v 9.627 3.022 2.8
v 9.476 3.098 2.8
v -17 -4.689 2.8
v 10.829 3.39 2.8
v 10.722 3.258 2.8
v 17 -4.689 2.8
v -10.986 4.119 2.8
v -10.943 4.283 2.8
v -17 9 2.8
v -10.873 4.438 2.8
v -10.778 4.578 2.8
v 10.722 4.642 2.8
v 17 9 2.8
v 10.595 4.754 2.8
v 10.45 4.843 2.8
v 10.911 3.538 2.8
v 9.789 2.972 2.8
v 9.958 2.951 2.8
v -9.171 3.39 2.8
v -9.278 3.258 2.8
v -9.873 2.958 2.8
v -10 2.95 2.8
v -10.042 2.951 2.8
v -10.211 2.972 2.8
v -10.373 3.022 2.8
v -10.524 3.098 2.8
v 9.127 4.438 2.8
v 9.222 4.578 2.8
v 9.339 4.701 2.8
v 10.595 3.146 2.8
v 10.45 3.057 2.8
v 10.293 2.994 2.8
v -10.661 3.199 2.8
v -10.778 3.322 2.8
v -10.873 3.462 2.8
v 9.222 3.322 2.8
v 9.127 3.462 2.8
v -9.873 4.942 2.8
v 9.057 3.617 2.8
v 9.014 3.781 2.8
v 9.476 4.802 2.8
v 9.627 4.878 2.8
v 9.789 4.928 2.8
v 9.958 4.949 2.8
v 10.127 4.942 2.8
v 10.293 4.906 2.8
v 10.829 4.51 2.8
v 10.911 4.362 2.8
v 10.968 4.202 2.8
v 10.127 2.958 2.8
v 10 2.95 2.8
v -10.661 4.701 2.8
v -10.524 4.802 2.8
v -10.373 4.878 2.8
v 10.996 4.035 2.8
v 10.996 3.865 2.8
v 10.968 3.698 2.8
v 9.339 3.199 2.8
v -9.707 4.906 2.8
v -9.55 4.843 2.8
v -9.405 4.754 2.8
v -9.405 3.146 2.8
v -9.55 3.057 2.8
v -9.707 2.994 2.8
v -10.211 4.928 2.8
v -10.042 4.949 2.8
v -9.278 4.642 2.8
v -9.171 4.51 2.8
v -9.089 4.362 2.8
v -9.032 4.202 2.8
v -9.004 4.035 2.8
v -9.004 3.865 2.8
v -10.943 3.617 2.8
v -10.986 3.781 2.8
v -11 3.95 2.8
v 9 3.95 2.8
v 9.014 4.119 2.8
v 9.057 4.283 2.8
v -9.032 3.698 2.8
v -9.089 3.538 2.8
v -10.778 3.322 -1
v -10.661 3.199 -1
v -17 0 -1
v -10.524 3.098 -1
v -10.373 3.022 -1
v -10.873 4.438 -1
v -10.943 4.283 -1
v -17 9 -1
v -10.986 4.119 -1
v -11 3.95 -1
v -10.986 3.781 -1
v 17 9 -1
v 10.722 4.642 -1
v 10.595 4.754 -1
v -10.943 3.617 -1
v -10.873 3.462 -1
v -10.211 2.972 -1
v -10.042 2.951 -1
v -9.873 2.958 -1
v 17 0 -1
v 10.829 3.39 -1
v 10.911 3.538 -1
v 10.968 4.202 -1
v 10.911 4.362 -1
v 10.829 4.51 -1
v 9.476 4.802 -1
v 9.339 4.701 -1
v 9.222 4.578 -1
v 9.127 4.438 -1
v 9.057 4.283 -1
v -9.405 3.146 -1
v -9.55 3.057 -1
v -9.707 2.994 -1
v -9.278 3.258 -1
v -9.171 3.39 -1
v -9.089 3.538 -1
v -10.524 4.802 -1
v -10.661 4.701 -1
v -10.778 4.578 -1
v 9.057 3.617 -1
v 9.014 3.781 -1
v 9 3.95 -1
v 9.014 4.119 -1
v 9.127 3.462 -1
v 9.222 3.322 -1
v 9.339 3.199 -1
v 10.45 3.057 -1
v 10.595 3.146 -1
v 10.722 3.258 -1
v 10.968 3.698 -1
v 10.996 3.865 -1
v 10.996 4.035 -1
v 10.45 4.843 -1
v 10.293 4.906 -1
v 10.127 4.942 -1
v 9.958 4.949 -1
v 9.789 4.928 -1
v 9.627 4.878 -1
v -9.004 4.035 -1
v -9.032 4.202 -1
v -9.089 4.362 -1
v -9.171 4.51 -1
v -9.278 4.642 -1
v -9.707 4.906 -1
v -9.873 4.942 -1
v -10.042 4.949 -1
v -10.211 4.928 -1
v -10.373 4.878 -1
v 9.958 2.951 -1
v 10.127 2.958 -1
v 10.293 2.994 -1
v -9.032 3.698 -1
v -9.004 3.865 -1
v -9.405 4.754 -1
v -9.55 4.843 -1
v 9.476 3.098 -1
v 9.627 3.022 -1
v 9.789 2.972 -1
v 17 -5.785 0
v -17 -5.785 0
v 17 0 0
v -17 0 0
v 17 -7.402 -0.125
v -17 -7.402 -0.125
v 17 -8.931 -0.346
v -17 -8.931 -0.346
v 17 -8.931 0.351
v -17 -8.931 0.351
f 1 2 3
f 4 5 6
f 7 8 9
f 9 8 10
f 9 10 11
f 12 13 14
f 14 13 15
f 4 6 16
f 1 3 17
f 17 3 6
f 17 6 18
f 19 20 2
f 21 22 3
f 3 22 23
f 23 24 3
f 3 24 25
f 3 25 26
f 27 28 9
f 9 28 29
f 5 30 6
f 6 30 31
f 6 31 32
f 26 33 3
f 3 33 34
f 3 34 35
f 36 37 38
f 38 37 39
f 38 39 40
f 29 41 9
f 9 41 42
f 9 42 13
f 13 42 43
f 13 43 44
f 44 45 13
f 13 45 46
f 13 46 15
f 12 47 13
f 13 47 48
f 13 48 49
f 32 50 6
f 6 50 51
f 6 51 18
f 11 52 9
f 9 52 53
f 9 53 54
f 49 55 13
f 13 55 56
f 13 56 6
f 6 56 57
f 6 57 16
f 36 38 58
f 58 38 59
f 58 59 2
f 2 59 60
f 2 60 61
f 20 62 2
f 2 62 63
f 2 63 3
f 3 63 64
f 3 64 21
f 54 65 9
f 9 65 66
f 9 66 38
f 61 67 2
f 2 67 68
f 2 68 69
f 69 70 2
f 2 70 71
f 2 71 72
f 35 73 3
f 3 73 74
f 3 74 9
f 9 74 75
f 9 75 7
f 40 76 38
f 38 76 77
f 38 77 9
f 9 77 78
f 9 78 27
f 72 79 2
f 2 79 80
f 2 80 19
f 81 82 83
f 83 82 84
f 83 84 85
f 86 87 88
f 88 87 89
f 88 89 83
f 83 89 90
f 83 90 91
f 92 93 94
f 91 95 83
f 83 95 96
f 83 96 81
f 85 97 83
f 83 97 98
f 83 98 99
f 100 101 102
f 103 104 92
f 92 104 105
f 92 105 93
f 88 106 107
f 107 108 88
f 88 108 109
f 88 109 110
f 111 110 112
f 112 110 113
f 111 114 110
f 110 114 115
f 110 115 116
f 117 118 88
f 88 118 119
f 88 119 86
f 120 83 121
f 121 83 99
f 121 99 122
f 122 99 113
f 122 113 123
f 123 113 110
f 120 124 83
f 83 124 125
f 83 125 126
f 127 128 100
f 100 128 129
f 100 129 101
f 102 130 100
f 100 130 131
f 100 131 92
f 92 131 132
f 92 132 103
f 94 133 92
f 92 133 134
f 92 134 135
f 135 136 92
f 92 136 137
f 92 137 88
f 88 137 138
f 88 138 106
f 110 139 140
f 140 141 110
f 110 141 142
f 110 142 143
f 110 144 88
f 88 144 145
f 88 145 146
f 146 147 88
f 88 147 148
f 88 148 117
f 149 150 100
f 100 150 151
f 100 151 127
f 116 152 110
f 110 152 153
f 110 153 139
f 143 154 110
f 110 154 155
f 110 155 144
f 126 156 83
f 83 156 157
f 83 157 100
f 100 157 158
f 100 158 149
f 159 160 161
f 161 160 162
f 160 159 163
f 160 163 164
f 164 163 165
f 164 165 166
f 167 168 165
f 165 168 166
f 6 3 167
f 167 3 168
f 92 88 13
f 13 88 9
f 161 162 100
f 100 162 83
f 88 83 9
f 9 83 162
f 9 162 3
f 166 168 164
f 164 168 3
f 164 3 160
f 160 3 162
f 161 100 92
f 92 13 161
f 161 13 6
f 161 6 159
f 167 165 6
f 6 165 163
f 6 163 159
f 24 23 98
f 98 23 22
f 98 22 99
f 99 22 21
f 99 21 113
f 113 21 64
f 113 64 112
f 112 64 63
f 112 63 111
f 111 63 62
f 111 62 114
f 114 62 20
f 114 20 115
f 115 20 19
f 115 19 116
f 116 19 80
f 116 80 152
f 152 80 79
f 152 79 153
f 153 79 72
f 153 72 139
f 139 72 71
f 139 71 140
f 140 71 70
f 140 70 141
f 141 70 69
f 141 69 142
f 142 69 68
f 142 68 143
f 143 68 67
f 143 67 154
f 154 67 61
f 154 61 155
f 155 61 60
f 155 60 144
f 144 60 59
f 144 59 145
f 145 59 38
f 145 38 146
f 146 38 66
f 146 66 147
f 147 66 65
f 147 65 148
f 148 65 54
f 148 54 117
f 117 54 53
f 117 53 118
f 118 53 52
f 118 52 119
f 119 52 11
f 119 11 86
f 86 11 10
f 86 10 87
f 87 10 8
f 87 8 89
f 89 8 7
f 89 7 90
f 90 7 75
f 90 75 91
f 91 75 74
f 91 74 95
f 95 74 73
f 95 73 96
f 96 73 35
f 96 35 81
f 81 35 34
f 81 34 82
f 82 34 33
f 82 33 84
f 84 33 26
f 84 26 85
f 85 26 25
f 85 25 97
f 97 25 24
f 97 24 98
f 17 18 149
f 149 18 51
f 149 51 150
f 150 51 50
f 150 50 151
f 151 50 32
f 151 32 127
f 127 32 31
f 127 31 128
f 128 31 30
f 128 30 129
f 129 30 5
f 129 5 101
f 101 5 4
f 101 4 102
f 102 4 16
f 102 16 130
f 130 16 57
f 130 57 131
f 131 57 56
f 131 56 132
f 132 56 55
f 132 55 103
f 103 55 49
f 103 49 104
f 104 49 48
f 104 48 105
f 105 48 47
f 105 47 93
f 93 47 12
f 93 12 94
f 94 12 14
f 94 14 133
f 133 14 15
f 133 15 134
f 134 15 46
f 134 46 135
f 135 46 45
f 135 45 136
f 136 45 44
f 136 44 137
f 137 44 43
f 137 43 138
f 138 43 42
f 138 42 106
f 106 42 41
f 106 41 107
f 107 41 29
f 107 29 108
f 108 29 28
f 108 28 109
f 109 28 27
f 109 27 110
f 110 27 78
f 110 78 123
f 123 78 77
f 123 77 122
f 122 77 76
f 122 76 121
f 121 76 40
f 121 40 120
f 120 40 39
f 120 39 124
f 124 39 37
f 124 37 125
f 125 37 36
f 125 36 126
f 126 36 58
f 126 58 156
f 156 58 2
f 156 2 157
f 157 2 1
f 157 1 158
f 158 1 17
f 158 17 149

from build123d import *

# Parameters (mm, degrees)
BOSS_EXTRUDE1_DEPTH      = 17
BOSS_EXTRUDE1_DEPTH_BACK = 17
SKETCH4_R                = 1
CUT_EXTRUDE1_DEPTH       = 17


with BuildPart() as part:
    # Sketch1 → Boss-Extrude1 (new, two sides: drawn at the far end of the back side and taken through both)
    with BuildSketch(Plane(origin=(0, 0, 0), x_dir=(0, 0, -1), z_dir=(1, 0, 0)).offset(-BOSS_EXTRUDE1_DEPTH_BACK)):
        with BuildLine():
            Line((0, 0), (1, 0))
            Line((1, 0), (1, 9))
            Line((1, 9), (-2.8, 9))
            Line((-2.8, 9), (-2.8, 0))
            Line((-2.8, 0), (-2.8, -4.689169104))
            Line((-2.8, -4.689169104), (-0.351186116, -8.93063917))
            Line((-0.351186116, -8.93063917), (0, -8.93063917))
            Line((0, -8.93063917), (0.3465, -8.93063917))
            add(Edge.make_bspline(
                [(0, -5.784861062), (0.068127357, -7.369329156), (0.3465, -8.93063917)],
                knots=[0, 0, 0, 1, 1, 1], degree=2))
            Line((0, -5.784861062), (0, 0))
        make_face()
    extrude(amount=BOSS_EXTRUDE1_DEPTH + BOSS_EXTRUDE1_DEPTH_BACK)

    # Sketch4 → Cut-Extrude1 (cut)
    with BuildSketch(Plane(origin=(0, 0, -1), x_dir=(-1, 0, 0), z_dir=(0, 0, -1))):
        with Locations((-10, 3.95)):
            Circle(SKETCH4_R)
        with Locations((10, 3.95)):
            Circle(SKETCH4_R)
    extrude(amount=-CUT_EXTRUDE1_DEPTH, mode=Mode.SUBTRACT)


solid = part.part
